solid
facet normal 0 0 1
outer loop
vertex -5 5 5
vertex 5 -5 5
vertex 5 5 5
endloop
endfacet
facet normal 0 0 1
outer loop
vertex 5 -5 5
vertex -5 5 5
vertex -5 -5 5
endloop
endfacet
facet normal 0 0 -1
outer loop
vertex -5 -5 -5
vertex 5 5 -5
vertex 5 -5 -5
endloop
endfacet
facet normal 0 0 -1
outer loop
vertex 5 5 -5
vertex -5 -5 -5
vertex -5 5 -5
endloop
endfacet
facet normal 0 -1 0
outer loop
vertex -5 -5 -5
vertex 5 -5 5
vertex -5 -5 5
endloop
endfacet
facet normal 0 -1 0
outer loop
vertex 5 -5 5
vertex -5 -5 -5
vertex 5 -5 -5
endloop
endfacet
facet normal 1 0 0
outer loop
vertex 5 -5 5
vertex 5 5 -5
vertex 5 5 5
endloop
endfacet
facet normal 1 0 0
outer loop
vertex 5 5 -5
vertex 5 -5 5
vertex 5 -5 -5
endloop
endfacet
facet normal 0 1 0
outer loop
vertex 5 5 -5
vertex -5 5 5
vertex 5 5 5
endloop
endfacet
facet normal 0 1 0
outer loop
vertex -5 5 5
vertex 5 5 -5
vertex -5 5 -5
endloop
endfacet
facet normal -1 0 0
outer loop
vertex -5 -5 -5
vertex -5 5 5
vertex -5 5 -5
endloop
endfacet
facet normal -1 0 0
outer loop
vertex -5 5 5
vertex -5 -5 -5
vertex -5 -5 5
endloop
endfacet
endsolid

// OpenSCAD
// Reference Cube (10x10x10)
cube([10, 10, 10], center=true); 
